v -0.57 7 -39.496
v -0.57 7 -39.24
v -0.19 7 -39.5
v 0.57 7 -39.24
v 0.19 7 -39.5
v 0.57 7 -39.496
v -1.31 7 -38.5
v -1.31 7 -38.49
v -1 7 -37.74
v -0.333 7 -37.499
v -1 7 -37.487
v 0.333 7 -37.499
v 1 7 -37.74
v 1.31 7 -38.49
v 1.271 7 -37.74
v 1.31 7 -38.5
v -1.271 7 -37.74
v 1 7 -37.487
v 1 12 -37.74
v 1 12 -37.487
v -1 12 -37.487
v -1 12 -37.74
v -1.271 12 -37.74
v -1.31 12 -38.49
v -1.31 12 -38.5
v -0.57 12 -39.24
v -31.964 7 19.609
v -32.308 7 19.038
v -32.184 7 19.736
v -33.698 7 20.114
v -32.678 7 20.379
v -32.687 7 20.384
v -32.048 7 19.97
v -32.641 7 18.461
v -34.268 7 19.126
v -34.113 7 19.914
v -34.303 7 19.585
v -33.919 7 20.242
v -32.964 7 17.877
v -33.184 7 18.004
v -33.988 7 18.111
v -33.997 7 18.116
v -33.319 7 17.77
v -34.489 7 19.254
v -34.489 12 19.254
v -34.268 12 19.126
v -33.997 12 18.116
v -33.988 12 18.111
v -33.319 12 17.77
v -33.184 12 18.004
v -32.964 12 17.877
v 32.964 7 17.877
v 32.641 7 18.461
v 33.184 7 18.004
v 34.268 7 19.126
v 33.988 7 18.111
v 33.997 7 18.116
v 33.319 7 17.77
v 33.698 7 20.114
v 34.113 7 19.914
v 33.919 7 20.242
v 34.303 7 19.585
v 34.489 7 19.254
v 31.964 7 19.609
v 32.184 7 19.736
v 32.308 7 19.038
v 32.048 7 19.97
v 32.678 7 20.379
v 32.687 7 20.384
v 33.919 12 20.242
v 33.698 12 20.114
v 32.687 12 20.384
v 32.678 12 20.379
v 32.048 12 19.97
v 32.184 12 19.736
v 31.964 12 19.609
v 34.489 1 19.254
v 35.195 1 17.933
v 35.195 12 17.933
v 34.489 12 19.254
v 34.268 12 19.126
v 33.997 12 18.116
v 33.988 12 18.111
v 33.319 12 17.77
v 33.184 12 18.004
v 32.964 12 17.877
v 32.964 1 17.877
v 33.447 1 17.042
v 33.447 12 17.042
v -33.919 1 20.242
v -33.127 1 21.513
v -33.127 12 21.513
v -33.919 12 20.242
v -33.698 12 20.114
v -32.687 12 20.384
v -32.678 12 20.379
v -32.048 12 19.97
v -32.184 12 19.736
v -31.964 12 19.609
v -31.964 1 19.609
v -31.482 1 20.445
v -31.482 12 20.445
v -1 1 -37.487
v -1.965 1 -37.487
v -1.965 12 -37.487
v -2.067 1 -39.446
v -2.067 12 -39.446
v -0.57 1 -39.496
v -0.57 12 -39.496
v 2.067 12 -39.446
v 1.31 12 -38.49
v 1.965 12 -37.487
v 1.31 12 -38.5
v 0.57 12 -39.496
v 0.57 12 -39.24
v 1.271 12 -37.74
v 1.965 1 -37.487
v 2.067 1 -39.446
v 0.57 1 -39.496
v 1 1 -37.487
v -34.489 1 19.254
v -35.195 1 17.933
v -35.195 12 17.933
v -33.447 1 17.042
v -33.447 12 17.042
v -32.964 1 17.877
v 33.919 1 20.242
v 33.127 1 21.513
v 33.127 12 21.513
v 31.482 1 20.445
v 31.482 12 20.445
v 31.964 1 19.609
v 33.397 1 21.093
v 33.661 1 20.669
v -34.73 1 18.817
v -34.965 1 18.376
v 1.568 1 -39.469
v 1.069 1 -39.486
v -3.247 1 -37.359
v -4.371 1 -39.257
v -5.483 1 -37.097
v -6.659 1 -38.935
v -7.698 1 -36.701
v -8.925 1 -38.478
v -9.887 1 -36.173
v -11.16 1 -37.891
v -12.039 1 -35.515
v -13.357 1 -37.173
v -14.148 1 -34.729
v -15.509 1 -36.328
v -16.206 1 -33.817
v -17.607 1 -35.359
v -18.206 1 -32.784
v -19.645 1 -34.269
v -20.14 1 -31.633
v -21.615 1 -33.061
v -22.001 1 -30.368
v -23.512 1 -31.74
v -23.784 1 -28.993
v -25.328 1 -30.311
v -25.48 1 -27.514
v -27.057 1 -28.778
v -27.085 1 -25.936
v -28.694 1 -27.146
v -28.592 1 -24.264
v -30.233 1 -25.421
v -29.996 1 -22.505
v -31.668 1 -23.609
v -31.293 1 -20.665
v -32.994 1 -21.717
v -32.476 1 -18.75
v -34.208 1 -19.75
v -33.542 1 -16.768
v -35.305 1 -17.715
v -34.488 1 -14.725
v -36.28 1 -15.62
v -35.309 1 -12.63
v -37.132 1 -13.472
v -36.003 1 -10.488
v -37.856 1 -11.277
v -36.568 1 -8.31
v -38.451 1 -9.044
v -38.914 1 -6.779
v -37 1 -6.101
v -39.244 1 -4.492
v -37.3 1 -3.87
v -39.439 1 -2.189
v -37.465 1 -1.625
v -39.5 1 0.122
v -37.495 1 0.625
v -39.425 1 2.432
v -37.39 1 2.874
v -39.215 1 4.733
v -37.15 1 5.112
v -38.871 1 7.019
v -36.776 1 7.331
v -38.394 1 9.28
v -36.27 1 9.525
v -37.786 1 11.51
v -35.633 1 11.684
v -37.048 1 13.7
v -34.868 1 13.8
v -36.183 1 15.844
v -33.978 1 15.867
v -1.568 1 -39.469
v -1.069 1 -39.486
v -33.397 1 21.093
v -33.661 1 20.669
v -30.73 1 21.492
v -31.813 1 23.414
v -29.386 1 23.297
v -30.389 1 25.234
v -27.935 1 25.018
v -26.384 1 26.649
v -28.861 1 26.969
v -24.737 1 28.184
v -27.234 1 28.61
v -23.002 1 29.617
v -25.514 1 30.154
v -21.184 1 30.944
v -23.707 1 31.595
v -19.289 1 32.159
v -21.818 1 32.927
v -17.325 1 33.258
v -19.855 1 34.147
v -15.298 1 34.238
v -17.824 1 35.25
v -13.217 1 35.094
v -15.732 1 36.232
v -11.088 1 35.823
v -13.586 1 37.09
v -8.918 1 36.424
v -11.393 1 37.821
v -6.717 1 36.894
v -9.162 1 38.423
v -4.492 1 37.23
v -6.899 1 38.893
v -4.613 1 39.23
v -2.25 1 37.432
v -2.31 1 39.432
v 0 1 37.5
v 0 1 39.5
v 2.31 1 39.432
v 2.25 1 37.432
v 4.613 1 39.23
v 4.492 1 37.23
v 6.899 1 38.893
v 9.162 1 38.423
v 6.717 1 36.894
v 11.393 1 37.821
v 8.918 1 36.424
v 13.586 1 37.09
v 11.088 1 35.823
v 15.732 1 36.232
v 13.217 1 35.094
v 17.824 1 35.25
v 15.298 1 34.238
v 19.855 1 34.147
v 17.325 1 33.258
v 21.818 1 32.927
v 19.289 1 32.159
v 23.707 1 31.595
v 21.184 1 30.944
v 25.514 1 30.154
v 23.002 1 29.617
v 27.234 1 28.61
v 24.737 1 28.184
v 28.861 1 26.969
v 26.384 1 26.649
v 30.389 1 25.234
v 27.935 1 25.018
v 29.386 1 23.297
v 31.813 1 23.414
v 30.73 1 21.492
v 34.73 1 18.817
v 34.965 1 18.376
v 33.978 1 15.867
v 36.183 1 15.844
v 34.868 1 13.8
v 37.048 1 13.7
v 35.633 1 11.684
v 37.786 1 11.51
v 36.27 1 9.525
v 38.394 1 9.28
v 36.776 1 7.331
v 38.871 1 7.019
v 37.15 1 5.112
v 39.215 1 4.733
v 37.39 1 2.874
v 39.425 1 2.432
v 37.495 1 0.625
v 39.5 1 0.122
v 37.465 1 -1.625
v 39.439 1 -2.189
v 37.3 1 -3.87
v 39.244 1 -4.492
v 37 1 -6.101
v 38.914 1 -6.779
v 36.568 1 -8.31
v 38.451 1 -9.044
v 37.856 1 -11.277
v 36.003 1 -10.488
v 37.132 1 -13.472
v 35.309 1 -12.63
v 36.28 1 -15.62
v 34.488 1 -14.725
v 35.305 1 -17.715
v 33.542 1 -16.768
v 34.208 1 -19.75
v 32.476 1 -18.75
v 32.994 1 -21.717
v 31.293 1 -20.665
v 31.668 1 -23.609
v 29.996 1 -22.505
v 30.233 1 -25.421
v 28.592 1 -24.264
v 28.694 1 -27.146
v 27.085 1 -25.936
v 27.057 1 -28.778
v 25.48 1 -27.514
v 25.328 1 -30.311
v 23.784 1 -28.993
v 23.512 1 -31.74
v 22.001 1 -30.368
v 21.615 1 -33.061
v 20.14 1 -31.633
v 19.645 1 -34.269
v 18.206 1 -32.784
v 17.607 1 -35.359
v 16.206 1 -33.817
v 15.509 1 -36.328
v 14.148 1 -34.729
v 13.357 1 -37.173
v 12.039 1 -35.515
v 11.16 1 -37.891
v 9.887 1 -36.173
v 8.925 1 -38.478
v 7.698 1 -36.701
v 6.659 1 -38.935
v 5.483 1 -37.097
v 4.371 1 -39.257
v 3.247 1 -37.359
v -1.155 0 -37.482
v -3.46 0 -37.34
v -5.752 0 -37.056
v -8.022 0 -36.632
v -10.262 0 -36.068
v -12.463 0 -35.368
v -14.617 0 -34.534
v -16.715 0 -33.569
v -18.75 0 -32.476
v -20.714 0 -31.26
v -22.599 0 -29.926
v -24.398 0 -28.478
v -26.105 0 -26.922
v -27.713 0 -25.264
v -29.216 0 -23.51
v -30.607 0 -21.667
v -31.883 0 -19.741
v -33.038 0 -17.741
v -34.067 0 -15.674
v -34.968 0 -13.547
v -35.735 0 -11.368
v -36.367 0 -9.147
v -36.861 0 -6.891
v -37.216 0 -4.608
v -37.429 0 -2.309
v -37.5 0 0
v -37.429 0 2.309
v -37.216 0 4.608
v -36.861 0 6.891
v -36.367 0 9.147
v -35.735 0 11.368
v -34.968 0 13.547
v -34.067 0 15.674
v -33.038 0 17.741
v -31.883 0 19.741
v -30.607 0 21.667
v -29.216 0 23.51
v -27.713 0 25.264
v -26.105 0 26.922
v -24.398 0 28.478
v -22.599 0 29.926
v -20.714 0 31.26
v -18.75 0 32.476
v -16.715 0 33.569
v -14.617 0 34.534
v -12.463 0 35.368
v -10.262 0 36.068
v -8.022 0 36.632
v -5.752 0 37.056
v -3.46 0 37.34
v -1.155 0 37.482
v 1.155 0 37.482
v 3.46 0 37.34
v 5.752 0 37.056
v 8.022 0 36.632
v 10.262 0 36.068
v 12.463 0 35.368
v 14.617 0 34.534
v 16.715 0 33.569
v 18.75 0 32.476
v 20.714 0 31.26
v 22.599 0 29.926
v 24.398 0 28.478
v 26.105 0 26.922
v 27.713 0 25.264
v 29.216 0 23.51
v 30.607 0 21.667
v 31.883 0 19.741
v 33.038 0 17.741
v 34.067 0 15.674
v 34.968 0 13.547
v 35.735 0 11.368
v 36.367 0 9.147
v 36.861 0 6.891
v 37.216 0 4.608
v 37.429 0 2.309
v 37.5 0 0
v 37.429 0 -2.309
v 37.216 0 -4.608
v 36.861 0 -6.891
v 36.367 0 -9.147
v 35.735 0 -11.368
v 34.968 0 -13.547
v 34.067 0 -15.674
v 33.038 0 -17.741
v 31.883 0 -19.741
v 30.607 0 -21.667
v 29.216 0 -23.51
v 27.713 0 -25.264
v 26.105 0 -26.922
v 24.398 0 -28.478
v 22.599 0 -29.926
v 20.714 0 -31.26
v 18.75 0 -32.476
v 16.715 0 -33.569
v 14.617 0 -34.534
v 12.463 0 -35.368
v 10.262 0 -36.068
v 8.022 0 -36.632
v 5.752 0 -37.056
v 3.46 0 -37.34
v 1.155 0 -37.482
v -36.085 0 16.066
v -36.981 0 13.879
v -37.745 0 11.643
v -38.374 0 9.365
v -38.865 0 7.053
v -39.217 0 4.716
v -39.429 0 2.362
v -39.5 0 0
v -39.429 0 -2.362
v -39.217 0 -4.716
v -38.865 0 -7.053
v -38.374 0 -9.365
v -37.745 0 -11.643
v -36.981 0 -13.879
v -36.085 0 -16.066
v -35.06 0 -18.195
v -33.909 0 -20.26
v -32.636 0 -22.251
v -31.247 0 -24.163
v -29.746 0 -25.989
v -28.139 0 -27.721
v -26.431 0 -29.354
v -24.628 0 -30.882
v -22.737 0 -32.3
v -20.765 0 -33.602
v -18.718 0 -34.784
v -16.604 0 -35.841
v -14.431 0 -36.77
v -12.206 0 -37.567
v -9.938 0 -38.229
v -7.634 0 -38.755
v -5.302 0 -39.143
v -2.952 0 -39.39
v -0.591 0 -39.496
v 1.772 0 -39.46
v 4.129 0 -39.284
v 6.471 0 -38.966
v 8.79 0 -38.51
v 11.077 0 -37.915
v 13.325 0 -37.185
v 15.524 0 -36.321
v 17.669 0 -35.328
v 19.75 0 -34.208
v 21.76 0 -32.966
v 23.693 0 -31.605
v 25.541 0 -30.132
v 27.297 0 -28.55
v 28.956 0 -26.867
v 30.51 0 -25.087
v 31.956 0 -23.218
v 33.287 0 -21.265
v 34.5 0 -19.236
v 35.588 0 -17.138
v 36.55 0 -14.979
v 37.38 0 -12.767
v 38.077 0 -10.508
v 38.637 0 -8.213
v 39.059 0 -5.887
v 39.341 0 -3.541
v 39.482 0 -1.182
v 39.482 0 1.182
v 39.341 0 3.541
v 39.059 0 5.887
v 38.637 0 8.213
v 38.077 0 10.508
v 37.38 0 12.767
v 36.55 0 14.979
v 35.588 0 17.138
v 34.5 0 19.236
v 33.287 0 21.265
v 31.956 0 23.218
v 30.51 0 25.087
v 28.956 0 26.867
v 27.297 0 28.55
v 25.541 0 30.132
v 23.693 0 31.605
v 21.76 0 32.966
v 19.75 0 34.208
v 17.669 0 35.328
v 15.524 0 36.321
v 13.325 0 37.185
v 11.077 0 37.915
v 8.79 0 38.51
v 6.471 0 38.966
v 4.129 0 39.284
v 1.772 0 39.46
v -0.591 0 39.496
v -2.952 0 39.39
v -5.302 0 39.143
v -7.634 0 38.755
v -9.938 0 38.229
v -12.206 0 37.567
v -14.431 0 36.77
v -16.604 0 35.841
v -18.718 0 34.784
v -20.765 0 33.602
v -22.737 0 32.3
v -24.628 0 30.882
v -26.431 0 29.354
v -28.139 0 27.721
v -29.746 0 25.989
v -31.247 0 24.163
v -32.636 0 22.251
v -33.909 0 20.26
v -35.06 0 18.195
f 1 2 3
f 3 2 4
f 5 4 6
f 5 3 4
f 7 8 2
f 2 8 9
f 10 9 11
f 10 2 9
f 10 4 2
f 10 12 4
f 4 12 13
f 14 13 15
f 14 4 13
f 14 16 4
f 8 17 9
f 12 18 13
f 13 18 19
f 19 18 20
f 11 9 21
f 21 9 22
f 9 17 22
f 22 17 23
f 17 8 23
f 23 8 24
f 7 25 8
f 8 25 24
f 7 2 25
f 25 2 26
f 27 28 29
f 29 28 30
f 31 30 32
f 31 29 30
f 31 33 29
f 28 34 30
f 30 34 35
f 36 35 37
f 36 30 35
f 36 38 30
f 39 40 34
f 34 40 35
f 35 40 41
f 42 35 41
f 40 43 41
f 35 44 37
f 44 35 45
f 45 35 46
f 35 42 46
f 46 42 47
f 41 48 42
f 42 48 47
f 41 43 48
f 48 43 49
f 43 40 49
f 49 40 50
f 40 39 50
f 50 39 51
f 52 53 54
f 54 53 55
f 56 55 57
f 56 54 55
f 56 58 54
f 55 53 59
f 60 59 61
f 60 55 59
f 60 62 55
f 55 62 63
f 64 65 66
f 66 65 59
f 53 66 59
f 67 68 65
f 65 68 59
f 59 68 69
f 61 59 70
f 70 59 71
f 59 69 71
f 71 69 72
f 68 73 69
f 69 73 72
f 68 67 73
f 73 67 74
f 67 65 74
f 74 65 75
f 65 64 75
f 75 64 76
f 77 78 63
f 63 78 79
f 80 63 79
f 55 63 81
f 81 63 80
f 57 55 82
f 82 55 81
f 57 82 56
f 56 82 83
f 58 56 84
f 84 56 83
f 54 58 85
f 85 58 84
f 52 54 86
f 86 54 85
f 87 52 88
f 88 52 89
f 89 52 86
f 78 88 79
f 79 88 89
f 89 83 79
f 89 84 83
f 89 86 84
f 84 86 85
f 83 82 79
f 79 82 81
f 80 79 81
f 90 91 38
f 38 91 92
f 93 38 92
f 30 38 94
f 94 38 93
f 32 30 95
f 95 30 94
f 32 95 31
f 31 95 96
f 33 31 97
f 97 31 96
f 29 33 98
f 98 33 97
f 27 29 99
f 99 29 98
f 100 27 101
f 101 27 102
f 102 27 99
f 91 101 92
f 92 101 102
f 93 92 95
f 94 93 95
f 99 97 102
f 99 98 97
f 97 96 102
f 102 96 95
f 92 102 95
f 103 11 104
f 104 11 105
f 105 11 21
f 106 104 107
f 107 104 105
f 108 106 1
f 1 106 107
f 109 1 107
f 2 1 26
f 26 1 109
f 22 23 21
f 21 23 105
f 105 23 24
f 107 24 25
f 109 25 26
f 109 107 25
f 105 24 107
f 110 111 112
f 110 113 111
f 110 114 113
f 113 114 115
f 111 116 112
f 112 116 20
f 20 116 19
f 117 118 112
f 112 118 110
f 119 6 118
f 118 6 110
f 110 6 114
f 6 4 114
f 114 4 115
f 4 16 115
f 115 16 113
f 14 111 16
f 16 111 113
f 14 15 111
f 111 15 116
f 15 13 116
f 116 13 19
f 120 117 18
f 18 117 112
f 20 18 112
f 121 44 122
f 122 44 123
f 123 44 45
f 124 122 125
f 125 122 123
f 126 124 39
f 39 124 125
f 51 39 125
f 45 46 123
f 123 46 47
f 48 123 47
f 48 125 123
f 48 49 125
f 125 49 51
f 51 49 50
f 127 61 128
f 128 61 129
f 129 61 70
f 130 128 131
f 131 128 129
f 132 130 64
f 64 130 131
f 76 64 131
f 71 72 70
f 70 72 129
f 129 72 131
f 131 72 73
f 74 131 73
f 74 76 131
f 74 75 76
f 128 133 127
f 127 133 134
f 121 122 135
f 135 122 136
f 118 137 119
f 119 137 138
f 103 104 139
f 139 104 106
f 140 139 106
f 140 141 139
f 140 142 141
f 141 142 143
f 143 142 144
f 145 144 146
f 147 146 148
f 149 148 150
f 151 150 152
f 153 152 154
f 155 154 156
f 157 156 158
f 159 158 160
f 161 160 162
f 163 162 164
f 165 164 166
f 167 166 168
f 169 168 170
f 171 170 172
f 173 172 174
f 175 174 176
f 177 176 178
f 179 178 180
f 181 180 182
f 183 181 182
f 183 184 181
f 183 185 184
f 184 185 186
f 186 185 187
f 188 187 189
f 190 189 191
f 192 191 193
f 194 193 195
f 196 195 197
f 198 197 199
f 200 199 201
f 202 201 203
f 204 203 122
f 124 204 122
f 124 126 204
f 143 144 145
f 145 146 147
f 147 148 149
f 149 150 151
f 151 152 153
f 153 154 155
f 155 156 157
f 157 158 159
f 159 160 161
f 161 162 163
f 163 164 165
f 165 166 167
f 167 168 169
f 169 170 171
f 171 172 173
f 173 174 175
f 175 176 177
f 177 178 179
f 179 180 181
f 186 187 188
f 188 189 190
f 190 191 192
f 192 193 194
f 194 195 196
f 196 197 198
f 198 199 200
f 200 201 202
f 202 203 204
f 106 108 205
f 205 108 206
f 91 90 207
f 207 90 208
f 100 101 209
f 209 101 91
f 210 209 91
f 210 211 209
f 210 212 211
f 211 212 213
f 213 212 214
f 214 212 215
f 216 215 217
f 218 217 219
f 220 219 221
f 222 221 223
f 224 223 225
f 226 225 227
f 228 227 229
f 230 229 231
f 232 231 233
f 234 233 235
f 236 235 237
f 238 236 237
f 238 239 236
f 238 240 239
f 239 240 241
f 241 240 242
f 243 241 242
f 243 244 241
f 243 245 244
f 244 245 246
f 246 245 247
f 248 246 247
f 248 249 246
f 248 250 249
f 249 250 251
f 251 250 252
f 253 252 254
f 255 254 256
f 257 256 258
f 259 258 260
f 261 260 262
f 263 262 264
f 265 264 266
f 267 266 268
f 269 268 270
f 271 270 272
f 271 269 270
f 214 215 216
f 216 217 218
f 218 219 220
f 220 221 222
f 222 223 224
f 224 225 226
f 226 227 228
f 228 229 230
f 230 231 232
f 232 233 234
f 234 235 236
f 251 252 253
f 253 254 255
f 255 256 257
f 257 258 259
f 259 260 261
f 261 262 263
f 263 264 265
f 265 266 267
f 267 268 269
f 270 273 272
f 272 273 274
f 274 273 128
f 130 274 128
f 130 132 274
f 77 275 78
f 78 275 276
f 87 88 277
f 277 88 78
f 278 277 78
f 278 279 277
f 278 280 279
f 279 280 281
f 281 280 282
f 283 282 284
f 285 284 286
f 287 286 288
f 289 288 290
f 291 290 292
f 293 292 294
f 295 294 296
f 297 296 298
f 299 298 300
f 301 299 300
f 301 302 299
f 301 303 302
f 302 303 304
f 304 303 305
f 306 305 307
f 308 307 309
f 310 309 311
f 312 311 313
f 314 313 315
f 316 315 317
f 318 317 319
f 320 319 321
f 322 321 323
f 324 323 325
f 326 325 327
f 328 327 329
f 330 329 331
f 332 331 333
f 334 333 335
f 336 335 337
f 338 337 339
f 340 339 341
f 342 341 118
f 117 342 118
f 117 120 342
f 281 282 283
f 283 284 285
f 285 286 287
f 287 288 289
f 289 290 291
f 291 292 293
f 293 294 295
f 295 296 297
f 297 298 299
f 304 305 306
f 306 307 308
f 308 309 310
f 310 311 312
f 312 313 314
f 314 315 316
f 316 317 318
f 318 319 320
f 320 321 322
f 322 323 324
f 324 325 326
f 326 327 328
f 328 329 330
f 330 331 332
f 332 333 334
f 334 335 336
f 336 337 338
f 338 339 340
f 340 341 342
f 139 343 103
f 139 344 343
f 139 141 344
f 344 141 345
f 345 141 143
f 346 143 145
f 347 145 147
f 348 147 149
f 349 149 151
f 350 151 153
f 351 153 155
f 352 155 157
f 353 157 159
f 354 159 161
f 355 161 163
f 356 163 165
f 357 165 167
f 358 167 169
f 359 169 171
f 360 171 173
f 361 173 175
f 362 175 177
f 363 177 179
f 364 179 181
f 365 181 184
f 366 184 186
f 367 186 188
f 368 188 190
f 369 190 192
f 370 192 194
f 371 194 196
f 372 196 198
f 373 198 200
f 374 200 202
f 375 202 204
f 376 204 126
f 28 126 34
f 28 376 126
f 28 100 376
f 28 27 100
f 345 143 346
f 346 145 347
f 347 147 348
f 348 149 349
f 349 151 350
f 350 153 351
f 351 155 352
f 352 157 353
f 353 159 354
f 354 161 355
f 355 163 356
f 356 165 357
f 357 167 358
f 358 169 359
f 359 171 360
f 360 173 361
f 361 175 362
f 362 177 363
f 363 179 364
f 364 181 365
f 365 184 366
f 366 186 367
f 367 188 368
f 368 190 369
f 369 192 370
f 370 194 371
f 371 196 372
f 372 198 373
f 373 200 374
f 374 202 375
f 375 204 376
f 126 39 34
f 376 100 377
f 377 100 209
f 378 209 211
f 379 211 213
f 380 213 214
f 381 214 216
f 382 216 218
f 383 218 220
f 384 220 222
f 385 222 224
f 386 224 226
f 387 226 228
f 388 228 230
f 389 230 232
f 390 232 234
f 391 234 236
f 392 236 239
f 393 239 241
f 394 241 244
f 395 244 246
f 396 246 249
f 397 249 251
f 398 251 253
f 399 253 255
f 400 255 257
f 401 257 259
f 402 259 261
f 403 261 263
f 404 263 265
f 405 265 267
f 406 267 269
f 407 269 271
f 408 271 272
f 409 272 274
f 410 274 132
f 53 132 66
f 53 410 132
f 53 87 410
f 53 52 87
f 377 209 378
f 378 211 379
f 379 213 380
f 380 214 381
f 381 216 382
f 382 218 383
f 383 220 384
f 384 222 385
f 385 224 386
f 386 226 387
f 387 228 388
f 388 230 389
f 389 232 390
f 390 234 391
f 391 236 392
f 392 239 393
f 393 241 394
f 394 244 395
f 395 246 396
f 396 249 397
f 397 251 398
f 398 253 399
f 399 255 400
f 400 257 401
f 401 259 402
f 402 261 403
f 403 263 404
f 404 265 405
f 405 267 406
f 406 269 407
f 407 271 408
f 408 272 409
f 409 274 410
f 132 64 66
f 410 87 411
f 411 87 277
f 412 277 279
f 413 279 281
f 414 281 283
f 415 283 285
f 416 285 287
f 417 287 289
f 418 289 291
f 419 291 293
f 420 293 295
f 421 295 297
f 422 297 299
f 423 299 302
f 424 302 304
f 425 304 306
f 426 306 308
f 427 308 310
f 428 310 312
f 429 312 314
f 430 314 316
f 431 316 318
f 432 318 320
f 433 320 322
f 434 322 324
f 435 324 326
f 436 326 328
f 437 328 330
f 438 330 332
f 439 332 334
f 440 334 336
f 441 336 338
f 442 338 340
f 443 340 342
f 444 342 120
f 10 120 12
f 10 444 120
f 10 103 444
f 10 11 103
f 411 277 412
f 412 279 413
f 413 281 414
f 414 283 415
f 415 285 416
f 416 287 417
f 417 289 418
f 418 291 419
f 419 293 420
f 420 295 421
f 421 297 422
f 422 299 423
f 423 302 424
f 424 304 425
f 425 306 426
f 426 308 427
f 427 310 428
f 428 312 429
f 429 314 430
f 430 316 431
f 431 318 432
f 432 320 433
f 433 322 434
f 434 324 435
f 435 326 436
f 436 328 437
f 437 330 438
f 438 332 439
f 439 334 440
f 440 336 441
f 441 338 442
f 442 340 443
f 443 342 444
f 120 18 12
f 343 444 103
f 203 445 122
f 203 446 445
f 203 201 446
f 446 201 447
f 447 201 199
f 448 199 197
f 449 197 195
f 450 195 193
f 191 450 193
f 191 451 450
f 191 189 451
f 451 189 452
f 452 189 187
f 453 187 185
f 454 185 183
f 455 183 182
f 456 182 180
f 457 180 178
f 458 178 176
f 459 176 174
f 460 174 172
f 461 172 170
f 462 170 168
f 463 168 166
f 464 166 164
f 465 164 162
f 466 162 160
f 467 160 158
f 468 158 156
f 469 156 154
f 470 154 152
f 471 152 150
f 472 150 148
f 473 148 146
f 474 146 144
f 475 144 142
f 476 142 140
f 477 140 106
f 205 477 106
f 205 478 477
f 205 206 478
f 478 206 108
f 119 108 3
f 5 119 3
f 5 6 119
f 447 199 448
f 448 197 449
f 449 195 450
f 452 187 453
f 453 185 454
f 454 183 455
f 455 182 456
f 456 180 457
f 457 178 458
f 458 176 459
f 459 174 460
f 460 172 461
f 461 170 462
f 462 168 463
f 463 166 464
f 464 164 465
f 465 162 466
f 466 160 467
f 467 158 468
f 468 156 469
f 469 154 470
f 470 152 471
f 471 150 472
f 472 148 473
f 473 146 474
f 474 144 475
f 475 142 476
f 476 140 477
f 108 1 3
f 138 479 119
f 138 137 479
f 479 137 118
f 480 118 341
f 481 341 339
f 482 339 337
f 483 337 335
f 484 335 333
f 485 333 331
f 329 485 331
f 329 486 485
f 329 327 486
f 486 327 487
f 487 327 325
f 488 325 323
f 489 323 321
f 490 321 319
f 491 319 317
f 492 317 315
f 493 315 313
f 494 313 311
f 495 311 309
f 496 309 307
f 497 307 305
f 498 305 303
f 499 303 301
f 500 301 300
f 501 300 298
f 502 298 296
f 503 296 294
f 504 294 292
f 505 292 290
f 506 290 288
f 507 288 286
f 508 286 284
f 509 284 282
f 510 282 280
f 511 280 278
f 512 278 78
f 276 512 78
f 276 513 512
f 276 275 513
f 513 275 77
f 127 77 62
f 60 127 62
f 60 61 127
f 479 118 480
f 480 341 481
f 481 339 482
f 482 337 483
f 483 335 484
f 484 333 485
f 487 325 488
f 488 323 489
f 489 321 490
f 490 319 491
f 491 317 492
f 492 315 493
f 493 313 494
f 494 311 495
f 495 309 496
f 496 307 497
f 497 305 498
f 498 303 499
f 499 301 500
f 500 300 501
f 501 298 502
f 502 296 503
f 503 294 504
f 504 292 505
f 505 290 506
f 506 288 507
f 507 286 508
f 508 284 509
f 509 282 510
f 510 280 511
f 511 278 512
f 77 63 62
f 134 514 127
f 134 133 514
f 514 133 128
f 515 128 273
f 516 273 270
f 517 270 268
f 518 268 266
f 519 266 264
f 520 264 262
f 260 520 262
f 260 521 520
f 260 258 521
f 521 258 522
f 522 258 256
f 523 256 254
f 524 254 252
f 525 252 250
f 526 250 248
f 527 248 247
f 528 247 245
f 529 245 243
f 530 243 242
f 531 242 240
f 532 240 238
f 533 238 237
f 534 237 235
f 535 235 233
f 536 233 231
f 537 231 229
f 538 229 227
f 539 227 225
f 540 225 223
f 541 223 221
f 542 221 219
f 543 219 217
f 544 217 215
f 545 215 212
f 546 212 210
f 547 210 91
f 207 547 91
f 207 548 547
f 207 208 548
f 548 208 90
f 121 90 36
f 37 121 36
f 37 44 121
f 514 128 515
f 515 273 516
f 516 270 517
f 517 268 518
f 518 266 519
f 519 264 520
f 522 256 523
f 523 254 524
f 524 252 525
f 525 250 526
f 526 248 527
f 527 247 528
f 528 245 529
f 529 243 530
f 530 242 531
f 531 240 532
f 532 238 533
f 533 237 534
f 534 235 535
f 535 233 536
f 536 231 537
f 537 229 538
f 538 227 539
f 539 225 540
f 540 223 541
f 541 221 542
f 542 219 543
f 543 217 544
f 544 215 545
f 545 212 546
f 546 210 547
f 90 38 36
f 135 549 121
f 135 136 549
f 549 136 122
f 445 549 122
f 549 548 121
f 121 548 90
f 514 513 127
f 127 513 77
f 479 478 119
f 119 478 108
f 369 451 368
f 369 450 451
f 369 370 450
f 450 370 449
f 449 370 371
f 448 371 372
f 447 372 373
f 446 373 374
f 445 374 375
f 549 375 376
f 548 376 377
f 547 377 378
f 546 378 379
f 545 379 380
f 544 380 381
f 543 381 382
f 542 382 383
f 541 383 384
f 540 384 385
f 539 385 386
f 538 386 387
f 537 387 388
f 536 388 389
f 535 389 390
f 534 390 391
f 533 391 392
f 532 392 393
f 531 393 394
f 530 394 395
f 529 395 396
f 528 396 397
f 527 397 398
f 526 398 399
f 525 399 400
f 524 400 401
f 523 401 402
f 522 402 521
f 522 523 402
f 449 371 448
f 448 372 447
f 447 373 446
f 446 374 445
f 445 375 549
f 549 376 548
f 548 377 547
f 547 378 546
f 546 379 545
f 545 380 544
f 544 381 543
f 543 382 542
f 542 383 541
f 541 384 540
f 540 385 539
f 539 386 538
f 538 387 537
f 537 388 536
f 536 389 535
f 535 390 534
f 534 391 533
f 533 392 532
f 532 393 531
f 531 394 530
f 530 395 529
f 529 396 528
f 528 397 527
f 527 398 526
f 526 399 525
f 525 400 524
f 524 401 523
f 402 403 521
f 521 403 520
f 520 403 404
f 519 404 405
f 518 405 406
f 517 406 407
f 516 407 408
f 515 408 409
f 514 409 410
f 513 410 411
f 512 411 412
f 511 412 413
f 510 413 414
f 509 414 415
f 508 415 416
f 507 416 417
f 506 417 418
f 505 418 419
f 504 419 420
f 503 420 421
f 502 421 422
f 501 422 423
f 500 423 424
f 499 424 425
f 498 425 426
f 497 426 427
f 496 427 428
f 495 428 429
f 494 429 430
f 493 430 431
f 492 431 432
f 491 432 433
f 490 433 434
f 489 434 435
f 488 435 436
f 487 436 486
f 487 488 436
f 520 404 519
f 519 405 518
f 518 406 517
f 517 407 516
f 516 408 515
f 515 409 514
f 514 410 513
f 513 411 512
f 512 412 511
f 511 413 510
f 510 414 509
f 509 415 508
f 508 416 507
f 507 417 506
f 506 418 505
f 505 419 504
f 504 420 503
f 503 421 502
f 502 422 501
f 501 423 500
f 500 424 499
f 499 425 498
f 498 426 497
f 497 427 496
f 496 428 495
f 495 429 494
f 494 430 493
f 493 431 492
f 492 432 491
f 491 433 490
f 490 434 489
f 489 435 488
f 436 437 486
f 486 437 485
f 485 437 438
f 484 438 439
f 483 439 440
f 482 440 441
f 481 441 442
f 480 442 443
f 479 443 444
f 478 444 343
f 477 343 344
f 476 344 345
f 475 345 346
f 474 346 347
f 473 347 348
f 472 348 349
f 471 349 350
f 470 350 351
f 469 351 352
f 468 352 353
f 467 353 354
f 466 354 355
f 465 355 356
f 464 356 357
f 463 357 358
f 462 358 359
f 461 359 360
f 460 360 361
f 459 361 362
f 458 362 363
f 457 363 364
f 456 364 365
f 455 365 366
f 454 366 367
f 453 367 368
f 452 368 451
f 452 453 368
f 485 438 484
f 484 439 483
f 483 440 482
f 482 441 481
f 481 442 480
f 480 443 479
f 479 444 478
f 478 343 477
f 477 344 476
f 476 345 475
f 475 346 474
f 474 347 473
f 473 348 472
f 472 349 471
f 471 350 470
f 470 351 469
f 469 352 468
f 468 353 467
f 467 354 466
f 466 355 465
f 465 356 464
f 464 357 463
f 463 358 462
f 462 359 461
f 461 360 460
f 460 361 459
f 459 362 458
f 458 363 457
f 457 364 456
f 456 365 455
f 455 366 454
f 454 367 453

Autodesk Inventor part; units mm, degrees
ref_plane "YZ Plane" through (0, 0, 0) normal (1, 0, 0) x (0, 1, 0)
ref_plane "XZ Plane" through (0, 0, 0) normal (0, 1, 0) x (-1, 0, 0)
ref_plane "XY Plane" through (0, 0, 0) normal (0, 0, 1) x (1, 0, 0)
sketch "Sketch1" plane through (0, 0, 0) normal (0, 1, 0) x (-1, 0, 0)
  circle A0 centre (0, 0) radius 39.5
  circle A1 centre (0, 0) radius 37.5
  dimension "d0" = 79
  dimension "d1" = 75
extrude "Extrusion1" add sketch "Sketch1" along normal blind 1
sketch "Sketch2" plane through (0, 1, 0) normal (0, 1, 0) x (1, 0, 0)
  circle A0 centre (0, 0) radius 37.5 projected
  circle A1 centre (0, 0) radius 39.5 projected
  line L0 (0, 39.5) -> (0, 37.5) construction
  line L1 (-0.57, 39.24) -> (0, 39.24)
  line L2 (-1.31, 38.5) -> (-1.31, 38.5)
  line L3 (-1.31, 38.5) -> (-1.31, 38.49)
  line L4 (-1.2707, 37.74) -> (0, 37.74)
  line L5 (-0.57, 39.24) -> (-1.31, 38.5)
  line L6 (-1.31, 38.49) -> (-1.2707, 37.74)
  line L7 (0, 0) -> (2.0673, 39.4459) construction
  line L8 (0, 0) -> (-2.0673, 39.4459) construction
  line L9 (1.9626, 37.4486) -> (2.0673, 39.4459)
  line L10 (-1.9626, 37.4486) -> (-2.0673, 39.4459)
  line L11 (-1, 37.74) -> (-1, 37.4867)
  line L12 (0.57, 39.24) -> (0, 39.24)
  line L13 (1.31, 38.5) -> (1.31, 38.5)
  line L14 (1.31, 38.5) -> (1.31, 38.49)
  line L15 (1.2707, 37.74) -> (0, 37.74)
  line L16 (0.57, 39.24) -> (1.31, 38.5)
  line L17 (1.31, 38.49) -> (1.2707, 37.74)
  line L18 (-0.57, 39.24) -> (-0.57, 39.4959)
  line L19 (-0.57, 39.4959) -> (-2.0673, 39.4459)
  line L20 (-1, 37.4867) -> (-1.9646, 37.4867)
  line L21 (0.57, 39.24) -> (0.57, 39.4959)
  line L22 (0.57, 39.4959) -> (2.0673, 39.4459)
  line L23 (1, 37.4867) -> (1, 37.74)
  line L24 (1, 37.4867) -> (1.9646, 37.4867)
  line L25 (-33.6978, -20.1136) -> (-33.9828, -19.62)
  line L26 (-32.687, -20.3845) -> (-32.6783, -20.3795)
  line L27 (-32.0485, -19.9705) -> (-32.6838, -18.87)
  line L28 (-33.6978, -20.1136) -> (-32.687, -20.3845)
  line L29 (-32.6783, -20.3795) -> (-32.0485, -19.9705)
  line L30 (0, 0) -> (-33.1275, -21.5132) construction
  line L31 (-33.4127, -17.0246) -> (-35.1948, -17.9326)
  line L32 (-31.4501, -20.424) -> (-33.1275, -21.5132)
  line L33 (-32.1838, -19.736) -> (-31.9644, -19.6094)
  line L34 (-33.9883, -18.1105) -> (-33.3191, -17.7695)
  line L35 (-33.3191, -17.7695) -> (-32.6838, -18.87)
  line L36 (-34.2678, -19.1264) -> (-33.997, -18.1155)
  line L37 (-34.2678, -19.1264) -> (-33.9828, -19.62)
  line L38 (-33.997, -18.1155) -> (-33.9883, -18.1105)
  line L39 (-33.6978, -20.1136) -> (-33.9194, -20.2416)
  line L40 (-33.9194, -20.2416) -> (-33.1275, -21.5132)
  line L41 (-31.9644, -19.6094) -> (-31.4821, -20.4447)
  line L42 (-34.2678, -19.1264) -> (-34.4894, -19.2543)
  line L43 (-34.4894, -19.2543) -> (-35.1948, -17.9326)
  line L44 (-32.9644, -17.8773) -> (-33.1838, -18.004)
  line L45 (-32.9644, -17.8773) -> (-33.4467, -17.0419)
  line L46 (34.2678, -19.1264) -> (33.9828, -19.62)
  line L47 (33.997, -18.1155) -> (33.9883, -18.1105)
  line L48 (33.3191, -17.7695) -> (32.6838, -18.87)
  line L49 (34.2678, -19.1264) -> (33.997, -18.1155)
  line L50 (33.9883, -18.1105) -> (33.3191, -17.7695)
  line L51 (0, 0) -> (35.1948, -17.9326) construction
  line L52 (31.4501, -20.424) -> (33.1275, -21.5132)
  line L53 (33.4127, -17.0246) -> (35.1948, -17.9326)
  line L54 (33.1838, -18.004) -> (32.9644, -17.8773)
  line L55 (32.6783, -20.3795) -> (32.0485, -19.9705)
  line L56 (32.0485, -19.9705) -> (32.6838, -18.87)
  line L57 (33.6978, -20.1136) -> (32.687, -20.3845)
  line L58 (33.6978, -20.1136) -> (33.9828, -19.62)
  line L59 (32.687, -20.3845) -> (32.6783, -20.3795)
  line L60 (34.2678, -19.1264) -> (34.4894, -19.2543)
  line L61 (34.4894, -19.2543) -> (35.1948, -17.9326)
  line L62 (32.9644, -17.8773) -> (33.4467, -17.0419)
  line L63 (33.6978, -20.1136) -> (33.9194, -20.2416)
  line L64 (33.9194, -20.2416) -> (33.1275, -21.5132)
  line L65 (31.9644, -19.6094) -> (32.1838, -19.736)
  line L66 (31.9644, -19.6094) -> (31.4821, -20.4447)
  line L67 (-33.1838, -18.004) -> (-33.3191, -17.7695)
  line L68 (-33.3191, -17.7695) -> (-33.9883, -18.1105)
  line L69 (-33.997, -18.1155) -> (-33.9883, -18.1105)
  line L70 (-34.2678, -19.1264) -> (-33.997, -18.1155)
  line L71 (-33.6978, -20.1136) -> (-32.687, -20.3845)
  line L72 (-32.0485, -19.9705) -> (-32.6783, -20.3795)
  line L73 (-32.0485, -19.9705) -> (-32.1838, -19.736)
  line L74 (34.2678, -19.1264) -> (33.997, -18.1155)
  line L75 (33.1838, -18.004) -> (33.3191, -17.7695)
  line L76 (33.6978, -20.1136) -> (32.687, -20.3845)
  point P0 (-1.31, 39.24)
  point P1 (-1.31, 37.74)
  point P2 (0, 38.5)
  point P3 (1.31, 37.74)
  point P4 (-33.3278, -20.7545)
  point P5 (-32.0288, -20.0045)
  point P6 (-33.3388, -17.7355)
  point P7 (34.6378, -18.4855)
  point P8 (33.3388, -17.7355)
  point P9 (32.0288, -20.0045)
  dimension "d4" = 1.31
  dimension "d5" = 0.74
  dimension "d6" = 0.76
  dimension "d7" = 0.74
  dimension "d8" = 45
  dimension "d9" = 0.75
  dimension "d10" = 3
  dimension "d11" = 3
  dimension "d12" = 1
  dimension "d15" = 360
extrude "Extrusion2" add sketch "Sketch2" along normal blind 11 contours L23 L15 L17 L14 L16 L21 L22 L9 L24 | L62 L53 L61 L60 L49 L47 L50 L48 L54 | L20 L10 L19 L18 L5 L3 L6 L4 L11 | L65 L56 L55 L59 L57 L63 L64 L52 L66 | L44 L35 L34 L38 L36 L42 L43 L31 L45 | L41 L32 L40 L39 L28 L26 L29 L27 L33
sketch "Sketch3" plane through (0, 1, 0) normal (0, 1, 0) x (1, 0, 0)
  line L0 (33.1838, -18.004) -> (32.9644, -17.8773) projected
  arc A0 (31.9644, -19.6094) -> (32.9644, -17.8773) centre (0, 0) ccw projected
  line L1 (31.9644, -19.6094) -> (32.1838, -19.736) projected
  line L2 (32.1838, -19.736) -> (32.0485, -19.9705) projected
  line L3 (32.0485, -19.9705) -> (32.6783, -20.3795) projected
  line L4 (32.6783, -20.3795) -> (32.687, -20.3845) projected
  line L5 (32.687, -20.3845) -> (33.6978, -20.1136) projected
  line L6 (33.6978, -20.1136) -> (33.9194, -20.2416) projected
  arc A1 (33.9194, -20.2416) -> (34.4894, -19.2543) centre (0, 0) ccw projected
  line L7 (34.4894, -19.2543) -> (34.2678, -19.1264) projected
  line L8 (34.2678, -19.1264) -> (33.997, -18.1155) projected
  line L9 (33.997, -18.1155) -> (33.9883, -18.1105) projected
  line L10 (33.9883, -18.1105) -> (33.3191, -17.7695) projected
  line L11 (33.3191, -17.7695) -> (33.1838, -18.004) projected
extrude "Extrusion3" add sketch "Sketch3" along normal blind 6
sketch "Sketch4" plane through (0, 1, 0) normal (0, 1, 0) x (1, 0, 0)
  line L0 (-32.1838, -19.736) -> (-31.9644, -19.6094) projected
  arc A0 (-32.9644, -17.8773) -> (-31.9644, -19.6094) centre (0, 0) ccw projected
  line L1 (-32.9644, -17.8773) -> (-33.1838, -18.004) projected
  line L2 (-33.1838, -18.004) -> (-33.3191, -17.7695) projected
  line L3 (-33.3191, -17.7695) -> (-33.9883, -18.1105) projected
  line L4 (-33.9883, -18.1105) -> (-33.997, -18.1155) projected
  line L5 (-33.997, -18.1155) -> (-34.2678, -19.1264) projected
  line L6 (-34.2678, -19.1264) -> (-34.4894, -19.2543) projected
  arc A1 (-34.4894, -19.2543) -> (-33.9194, -20.2416) centre (0, 0) ccw projected
  line L7 (-33.9194, -20.2416) -> (-33.6978, -20.1136) projected
  line L8 (-33.6978, -20.1136) -> (-32.687, -20.3845) projected
  line L9 (-32.687, -20.3845) -> (-32.6783, -20.3795) projected
  line L10 (-32.6783, -20.3795) -> (-32.0485, -19.9705) projected
  line L11 (-32.0485, -19.9705) -> (-32.1838, -19.736) projected
extrude "Extrusion4" add sketch "Sketch4" along normal blind 6
sketch "Sketch5" plane through (0, 1, 0) normal (0, 1, 0) x (1, 0, 0)
  line L0 (-0.57, 39.4959) -> (-0.57, 39.24) projected
  line L1 (-0.57, 39.24) -> (-1.31, 38.5) projected
  line L2 (-1.31, 38.5) -> (-1.31, 38.49) projected
  line L3 (-1.31, 38.49) -> (-1.2707, 37.74) projected
  line L4 (-1.2707, 37.74) -> (-1, 37.74) projected
  line L5 (-1, 37.74) -> (-1, 37.4867) projected
  arc A0 (1, 37.4867) -> (-1, 37.4867) centre (0, 0) ccw projected
  line L6 (1, 37.4867) -> (1, 37.74) projected
  line L7 (1, 37.74) -> (1.2707, 37.74) projected
  line L8 (1.2707, 37.74) -> (1.31, 38.49) projected
  line L9 (1.31, 38.49) -> (1.31, 38.5) projected
  line L10 (1.31, 38.5) -> (0.57, 39.24) projected
  line L11 (0.57, 39.24) -> (0.57, 39.4959) projected
  arc A1 (0.57, 39.4959) -> (-0.57, 39.4959) centre (0, 0) ccw projected
extrude "Extrusion5" add sketch "Sketch5" along normal blind 6
properties part number "Hallhouder" material "ABS Plastic"
